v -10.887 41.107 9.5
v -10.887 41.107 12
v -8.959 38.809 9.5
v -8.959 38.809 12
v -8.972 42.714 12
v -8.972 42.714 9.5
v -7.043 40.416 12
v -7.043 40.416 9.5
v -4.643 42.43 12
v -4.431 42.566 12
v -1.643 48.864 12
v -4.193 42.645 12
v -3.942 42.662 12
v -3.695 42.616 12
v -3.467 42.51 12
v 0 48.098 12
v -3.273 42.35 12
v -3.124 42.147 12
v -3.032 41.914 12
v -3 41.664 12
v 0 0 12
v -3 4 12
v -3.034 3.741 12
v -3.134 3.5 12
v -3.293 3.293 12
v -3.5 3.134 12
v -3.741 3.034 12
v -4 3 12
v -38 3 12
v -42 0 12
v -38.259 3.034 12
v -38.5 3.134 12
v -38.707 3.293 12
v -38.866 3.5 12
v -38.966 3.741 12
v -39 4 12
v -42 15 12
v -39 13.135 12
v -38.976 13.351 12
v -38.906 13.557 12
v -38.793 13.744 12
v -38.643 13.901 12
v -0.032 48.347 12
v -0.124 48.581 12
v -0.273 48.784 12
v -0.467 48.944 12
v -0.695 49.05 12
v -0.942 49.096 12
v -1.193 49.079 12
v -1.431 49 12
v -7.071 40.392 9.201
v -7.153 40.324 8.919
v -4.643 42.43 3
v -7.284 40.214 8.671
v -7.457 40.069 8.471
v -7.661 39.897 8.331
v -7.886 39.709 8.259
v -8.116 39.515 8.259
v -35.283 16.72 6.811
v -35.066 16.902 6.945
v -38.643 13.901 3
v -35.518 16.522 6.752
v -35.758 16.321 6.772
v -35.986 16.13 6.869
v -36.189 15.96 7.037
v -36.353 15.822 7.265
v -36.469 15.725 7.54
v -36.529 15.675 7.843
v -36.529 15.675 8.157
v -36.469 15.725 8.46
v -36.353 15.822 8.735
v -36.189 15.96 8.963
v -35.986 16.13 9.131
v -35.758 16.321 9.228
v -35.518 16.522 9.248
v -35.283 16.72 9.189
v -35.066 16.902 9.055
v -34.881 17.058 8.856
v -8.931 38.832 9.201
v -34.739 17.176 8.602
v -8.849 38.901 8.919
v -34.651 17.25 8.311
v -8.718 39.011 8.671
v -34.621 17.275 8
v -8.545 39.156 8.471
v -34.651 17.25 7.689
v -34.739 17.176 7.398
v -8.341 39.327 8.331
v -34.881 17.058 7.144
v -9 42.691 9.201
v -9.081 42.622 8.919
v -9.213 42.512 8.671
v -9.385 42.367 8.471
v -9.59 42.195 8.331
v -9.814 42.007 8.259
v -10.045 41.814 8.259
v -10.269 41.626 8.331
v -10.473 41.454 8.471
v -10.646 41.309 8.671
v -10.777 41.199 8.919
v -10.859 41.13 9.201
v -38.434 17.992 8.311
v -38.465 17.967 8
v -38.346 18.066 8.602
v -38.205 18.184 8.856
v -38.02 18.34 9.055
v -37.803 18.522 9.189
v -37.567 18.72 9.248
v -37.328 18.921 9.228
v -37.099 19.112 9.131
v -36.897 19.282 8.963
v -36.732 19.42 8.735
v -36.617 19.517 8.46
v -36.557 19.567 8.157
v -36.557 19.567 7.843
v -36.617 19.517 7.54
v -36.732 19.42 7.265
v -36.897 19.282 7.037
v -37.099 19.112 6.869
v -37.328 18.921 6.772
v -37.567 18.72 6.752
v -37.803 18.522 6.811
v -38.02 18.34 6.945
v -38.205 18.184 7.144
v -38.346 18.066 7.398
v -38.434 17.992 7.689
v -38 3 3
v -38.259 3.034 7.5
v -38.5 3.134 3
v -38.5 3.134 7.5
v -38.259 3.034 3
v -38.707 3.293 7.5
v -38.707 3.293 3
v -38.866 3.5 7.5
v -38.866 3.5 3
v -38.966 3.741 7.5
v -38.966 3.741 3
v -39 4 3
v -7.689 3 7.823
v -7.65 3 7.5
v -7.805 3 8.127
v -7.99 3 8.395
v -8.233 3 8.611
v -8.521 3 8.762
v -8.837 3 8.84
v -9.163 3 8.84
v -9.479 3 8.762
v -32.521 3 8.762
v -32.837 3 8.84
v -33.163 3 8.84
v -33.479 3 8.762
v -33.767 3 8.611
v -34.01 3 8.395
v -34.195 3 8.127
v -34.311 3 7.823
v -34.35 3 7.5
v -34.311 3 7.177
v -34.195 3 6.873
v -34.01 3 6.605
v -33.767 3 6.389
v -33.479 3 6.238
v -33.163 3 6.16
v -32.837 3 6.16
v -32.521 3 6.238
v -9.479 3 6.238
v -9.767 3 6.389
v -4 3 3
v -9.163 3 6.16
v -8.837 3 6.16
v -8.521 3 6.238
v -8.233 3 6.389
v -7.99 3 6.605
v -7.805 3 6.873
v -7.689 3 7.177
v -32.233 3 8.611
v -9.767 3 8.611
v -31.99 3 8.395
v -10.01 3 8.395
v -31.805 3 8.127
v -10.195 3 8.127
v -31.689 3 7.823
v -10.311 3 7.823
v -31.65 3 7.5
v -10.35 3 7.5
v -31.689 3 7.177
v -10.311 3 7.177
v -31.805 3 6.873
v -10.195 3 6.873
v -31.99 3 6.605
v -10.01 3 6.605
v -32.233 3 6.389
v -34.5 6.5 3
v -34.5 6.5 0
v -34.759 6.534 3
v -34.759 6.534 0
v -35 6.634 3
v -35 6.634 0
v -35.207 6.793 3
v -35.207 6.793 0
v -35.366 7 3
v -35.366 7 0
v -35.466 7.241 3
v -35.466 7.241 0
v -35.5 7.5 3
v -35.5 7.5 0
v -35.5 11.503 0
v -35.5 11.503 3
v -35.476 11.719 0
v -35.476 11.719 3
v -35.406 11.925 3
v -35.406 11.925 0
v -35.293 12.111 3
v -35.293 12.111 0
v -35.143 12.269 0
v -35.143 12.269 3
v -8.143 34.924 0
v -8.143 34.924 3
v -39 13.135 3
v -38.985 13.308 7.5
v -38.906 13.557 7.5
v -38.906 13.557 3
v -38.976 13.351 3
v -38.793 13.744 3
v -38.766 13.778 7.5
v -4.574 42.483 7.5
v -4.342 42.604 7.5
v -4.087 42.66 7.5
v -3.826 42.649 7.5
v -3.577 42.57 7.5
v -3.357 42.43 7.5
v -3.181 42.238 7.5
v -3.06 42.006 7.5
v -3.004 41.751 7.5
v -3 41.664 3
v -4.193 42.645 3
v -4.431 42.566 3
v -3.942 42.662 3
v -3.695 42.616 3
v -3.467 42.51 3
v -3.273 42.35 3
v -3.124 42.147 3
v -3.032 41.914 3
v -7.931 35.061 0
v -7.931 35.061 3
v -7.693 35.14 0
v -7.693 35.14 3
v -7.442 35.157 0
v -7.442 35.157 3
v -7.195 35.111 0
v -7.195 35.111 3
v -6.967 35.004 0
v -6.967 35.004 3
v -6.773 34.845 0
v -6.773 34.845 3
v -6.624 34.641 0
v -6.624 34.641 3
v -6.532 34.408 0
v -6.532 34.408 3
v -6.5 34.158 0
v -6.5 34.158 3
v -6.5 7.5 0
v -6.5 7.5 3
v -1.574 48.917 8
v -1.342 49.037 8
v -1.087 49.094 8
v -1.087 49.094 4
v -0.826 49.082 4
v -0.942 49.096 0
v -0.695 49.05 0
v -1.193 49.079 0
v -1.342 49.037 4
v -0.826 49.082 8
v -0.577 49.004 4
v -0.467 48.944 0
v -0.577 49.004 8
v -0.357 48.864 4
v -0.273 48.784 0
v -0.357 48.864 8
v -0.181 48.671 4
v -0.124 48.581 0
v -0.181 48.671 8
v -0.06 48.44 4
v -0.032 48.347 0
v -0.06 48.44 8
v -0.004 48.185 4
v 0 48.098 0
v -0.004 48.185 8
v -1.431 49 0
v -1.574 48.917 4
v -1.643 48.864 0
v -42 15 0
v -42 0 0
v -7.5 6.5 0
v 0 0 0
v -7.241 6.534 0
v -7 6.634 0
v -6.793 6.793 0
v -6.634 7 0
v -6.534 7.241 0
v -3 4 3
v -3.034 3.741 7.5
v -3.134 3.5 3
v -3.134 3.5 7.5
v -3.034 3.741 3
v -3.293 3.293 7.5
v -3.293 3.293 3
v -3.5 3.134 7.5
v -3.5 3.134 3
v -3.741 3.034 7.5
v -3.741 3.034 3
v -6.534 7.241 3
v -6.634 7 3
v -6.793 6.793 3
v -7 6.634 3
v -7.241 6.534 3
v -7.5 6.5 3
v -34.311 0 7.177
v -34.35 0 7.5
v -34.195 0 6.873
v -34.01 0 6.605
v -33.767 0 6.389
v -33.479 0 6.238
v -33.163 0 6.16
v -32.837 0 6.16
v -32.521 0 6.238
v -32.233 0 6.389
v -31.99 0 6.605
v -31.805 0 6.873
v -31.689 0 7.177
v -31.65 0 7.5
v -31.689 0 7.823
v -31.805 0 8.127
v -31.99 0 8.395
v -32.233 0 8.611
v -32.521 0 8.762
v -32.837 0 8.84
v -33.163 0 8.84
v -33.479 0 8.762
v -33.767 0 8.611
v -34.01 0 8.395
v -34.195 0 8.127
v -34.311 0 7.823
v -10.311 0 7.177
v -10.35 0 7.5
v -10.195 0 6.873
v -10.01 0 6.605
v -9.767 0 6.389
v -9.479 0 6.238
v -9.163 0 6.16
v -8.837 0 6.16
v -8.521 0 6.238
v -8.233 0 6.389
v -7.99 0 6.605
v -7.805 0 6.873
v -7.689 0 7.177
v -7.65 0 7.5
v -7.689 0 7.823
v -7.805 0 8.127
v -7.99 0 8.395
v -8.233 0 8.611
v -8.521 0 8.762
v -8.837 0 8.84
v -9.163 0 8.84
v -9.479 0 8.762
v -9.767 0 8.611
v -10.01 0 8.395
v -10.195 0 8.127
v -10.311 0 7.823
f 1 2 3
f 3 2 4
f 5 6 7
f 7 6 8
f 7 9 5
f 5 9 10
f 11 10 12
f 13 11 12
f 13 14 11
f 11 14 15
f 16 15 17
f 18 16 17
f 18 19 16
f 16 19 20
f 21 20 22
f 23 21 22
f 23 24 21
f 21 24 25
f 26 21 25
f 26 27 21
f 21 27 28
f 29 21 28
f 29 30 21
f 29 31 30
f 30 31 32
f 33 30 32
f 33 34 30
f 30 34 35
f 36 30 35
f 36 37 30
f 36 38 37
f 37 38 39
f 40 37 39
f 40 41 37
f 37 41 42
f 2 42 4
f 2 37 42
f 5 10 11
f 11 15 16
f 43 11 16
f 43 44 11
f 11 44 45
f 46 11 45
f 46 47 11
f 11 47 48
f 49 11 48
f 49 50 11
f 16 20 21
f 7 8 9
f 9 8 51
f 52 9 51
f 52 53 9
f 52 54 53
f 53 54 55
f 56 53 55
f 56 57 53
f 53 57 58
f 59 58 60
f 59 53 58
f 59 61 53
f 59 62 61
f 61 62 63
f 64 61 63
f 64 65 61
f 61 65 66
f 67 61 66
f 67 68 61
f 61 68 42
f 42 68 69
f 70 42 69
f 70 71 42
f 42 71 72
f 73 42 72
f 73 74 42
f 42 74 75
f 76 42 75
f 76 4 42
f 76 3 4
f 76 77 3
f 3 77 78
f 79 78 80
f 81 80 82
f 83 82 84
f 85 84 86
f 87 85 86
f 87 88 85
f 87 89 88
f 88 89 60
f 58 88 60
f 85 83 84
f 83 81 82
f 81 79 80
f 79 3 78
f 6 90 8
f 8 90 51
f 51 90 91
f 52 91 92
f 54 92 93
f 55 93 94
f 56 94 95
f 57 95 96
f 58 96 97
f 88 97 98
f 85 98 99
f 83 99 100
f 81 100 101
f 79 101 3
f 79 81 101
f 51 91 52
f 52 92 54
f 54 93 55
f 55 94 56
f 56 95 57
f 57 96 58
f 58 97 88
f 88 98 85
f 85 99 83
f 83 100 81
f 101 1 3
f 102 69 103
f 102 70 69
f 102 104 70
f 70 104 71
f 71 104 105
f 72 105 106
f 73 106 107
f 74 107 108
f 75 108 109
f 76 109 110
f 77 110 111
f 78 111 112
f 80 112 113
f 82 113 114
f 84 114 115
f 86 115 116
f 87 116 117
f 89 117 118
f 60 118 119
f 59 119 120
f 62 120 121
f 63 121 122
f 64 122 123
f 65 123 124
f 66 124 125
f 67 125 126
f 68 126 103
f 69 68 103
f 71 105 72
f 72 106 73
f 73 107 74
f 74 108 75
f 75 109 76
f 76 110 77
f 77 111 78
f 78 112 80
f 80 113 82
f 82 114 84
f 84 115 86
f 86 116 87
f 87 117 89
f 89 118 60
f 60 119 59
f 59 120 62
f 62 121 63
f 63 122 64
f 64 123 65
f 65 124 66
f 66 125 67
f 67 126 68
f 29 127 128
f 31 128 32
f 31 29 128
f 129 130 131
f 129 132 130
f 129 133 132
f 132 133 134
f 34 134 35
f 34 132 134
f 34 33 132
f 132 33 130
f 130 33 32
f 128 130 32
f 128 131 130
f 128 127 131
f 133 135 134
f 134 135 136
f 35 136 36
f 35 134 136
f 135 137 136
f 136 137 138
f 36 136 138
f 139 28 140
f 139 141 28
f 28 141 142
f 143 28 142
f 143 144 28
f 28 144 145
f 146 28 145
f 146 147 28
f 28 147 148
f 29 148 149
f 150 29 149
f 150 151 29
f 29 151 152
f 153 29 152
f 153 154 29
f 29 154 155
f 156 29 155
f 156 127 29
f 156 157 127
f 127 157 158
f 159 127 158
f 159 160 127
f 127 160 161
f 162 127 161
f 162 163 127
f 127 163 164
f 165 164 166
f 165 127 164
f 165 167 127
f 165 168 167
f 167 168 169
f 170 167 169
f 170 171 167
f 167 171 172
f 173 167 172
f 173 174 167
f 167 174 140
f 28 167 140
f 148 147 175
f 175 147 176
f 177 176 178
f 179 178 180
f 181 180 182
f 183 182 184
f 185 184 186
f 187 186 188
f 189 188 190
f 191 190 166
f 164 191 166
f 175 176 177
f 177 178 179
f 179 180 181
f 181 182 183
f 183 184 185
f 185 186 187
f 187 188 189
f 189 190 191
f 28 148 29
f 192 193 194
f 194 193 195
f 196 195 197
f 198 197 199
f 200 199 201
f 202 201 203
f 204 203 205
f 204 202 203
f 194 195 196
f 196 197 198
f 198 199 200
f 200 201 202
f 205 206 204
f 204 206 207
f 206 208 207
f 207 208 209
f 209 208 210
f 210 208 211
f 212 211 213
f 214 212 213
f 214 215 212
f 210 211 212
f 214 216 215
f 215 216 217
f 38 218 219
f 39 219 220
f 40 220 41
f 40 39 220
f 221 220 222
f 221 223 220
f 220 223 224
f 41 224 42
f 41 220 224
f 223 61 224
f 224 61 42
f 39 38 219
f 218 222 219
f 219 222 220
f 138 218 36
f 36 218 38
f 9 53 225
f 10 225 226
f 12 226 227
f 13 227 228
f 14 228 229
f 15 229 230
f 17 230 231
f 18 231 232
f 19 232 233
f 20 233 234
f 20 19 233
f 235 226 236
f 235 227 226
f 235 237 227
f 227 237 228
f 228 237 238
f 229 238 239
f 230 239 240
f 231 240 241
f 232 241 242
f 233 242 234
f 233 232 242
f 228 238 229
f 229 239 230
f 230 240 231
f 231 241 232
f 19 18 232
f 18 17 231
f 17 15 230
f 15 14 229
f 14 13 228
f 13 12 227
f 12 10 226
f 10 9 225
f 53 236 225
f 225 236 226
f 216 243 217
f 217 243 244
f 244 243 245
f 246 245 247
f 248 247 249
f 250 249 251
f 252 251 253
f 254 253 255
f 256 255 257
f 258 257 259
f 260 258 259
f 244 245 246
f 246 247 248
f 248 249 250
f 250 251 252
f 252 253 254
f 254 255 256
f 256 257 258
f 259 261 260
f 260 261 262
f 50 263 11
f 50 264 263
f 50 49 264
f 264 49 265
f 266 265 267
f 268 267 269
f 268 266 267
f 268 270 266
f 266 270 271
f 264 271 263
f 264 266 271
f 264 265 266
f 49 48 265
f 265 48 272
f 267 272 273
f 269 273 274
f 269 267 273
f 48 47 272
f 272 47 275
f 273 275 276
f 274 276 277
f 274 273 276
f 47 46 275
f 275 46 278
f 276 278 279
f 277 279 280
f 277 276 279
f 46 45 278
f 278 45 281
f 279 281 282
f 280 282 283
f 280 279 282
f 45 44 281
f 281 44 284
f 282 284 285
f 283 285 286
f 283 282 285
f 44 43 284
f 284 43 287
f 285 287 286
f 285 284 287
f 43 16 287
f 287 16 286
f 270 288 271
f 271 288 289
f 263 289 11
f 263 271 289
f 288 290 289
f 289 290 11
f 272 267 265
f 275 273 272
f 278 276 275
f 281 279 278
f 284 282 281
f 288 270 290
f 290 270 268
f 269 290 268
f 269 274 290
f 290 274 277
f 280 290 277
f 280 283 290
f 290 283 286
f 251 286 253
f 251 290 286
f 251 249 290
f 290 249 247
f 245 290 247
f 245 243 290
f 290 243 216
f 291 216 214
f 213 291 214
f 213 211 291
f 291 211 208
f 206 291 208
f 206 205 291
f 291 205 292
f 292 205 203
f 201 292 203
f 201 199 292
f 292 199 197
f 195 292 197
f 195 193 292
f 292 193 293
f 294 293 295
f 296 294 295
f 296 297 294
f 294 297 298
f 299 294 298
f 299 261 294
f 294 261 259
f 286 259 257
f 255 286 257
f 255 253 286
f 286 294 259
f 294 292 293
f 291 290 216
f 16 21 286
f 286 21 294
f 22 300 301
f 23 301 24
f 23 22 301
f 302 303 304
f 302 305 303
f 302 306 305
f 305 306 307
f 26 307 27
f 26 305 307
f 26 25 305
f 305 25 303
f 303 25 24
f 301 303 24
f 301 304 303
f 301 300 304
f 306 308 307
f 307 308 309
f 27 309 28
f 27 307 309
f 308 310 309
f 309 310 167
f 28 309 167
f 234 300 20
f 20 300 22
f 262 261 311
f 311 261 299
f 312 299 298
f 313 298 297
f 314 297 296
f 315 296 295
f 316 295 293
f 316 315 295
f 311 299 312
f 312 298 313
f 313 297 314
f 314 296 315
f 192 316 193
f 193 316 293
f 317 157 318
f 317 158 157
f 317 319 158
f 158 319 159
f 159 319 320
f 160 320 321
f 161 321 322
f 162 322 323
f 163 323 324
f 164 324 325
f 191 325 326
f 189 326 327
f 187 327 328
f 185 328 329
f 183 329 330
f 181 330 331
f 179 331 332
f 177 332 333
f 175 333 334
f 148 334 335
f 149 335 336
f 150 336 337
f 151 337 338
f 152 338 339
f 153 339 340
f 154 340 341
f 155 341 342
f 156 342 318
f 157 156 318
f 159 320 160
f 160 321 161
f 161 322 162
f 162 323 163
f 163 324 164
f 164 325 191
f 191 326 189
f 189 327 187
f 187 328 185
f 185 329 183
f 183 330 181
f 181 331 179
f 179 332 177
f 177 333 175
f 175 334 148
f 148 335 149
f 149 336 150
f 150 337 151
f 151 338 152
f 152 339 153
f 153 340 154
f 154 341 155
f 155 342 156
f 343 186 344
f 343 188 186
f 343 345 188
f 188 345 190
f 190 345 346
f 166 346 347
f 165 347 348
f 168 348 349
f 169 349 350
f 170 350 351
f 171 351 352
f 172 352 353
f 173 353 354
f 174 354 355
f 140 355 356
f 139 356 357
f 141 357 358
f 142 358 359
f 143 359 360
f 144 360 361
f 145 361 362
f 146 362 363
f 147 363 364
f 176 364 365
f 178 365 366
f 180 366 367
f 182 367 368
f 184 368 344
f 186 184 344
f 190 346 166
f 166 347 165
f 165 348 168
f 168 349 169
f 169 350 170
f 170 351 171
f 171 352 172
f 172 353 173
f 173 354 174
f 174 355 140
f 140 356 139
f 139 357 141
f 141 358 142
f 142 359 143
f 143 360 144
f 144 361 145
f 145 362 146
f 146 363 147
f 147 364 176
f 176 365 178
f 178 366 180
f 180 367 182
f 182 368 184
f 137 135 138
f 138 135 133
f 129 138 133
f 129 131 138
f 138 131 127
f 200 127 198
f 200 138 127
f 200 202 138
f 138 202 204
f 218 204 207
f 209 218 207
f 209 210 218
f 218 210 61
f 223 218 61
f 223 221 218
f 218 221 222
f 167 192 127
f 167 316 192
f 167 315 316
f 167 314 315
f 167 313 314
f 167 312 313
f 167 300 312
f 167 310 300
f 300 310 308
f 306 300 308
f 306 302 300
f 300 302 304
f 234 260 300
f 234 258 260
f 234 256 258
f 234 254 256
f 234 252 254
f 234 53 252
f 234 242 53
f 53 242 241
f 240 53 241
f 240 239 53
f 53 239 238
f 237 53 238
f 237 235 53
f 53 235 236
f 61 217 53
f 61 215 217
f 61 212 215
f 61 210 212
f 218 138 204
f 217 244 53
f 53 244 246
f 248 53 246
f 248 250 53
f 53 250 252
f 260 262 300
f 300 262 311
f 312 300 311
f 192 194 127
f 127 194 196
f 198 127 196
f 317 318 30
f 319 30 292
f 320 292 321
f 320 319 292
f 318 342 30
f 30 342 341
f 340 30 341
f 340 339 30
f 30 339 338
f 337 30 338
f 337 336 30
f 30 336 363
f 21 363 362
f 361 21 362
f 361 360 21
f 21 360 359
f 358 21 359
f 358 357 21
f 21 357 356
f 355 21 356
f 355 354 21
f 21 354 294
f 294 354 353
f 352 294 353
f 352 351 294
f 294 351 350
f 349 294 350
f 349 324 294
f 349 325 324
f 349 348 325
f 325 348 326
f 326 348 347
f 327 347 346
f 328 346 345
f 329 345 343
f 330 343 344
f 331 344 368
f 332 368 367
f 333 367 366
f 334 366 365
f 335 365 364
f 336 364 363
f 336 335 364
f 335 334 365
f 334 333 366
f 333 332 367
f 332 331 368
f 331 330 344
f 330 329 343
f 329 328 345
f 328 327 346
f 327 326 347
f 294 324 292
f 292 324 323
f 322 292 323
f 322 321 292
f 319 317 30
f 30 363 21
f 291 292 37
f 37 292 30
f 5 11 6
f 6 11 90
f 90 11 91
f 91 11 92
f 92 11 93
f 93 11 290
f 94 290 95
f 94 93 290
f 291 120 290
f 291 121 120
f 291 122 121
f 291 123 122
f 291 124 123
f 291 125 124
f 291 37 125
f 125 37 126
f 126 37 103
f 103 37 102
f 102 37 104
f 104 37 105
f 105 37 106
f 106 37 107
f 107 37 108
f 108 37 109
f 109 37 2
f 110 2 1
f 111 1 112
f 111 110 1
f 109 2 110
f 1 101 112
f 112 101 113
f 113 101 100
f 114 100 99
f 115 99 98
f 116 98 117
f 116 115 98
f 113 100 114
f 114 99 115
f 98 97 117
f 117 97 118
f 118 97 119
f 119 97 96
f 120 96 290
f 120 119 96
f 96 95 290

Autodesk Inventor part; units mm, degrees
ref_plane "YZ Plane" through (0, 0, 0) normal (1, 0, 0) x (0, 1, 0)
ref_plane "XZ Plane" through (0, 0, 0) normal (0, 1, 0) x (-1, 0, 0)
ref_plane "XY Plane" through (0, 0, 0) normal (0, 0, 1) x (1, 0, 0)
sketch "Skizze1" plane through (0, 0, 0) normal (0, 0, 1) x (1, 0, 0)
  line L0 (0, 0) -> (0, 50.2422)
  line L1 (0, 50.2422) -> (-42, 15)
  line L2 (-42, 15) -> (-42, 0)
  line L3 (-42, 0) -> (0, 0)
  line L4 (-6.5, 6.5) -> (-6.5, 36.3029)
  line L5 (-6.5, 36.3029) -> (-35.5, 11.969)
  line L6 (-35.5, 11.969) -> (-35.5, 6.5)
  line L7 (-35.5, 6.5) -> (-6.5, 6.5)
  dimension "d0" = 130
  dimension "d1" = 15
  dimension "d2" = 42
  dimension "d3" = 6.5
  dimension "d4" = 6.5
  dimension "d6" = 6.5
  dimension "d7" = 6.5
extrude "Extrusion1" add sketch "Skizze1" along normal blind 12
sketch "Skizze2" plane through (0, 0, 12) normal (0, 0, 1) x (1, 0, 0)
  line L0 (-3, 43.8087) -> (-3, 3)
  line L1 (-3, 3) -> (-39, 3)
  line L2 (-39, 3) -> (-39, 13.6011)
  line L3 (-39, 13.6011) -> (-3, 43.8087)
  line L4 (-42, 0) -> (0, 0) projected
  line L5 (-42, 15) -> (-42, 0) projected
  line L6 (0, 50.2422) -> (-42, 15) projected
  line L7 (0, 0) -> (0, 50.2422) projected
  dimension "d10" = 3
  dimension "d11" = 3
  dimension "d12" = 3
  dimension "d13" = 3
extrude "Extrusion2" cut sketch "Skizze2" against normal blind 9 contours L0 L1 L2 L3
sketch "Skizze3" plane through (-39, 3, 12) normal (0, 1, 0) x (1, 0, 0)
  line L0 (39, 12) -> (39, 0) projected
  line L1 (39, 0) -> (36, 0) projected
  line L2 (36, 0) -> (36, 9) projected
  line L3 (36, 9) -> (0, 9) projected
  line L4 (0, 9) -> (0, 0) projected
  line L5 (0, 0) -> (-3, 0) projected
  line L6 (-3, 0) -> (-3, 12) projected
  line L7 (-3, 12) -> (39, 12) projected
  line L8 (36, 0) -> (0, 0) projected
  line L9 (0, 4.5) -> (36, 4.5)
  point P0 (6, 4.5)
  point P1 (30, 4.5)
  dimension "d17" = 6
  dimension "d18" = 6
hole "Bohrung1" at (-33, 3, 7.5) at (-9, 3, 7.5) direction (0, -1, 0) diameter 2.7 depth 8 tip angle 118
fillet "Rundung2" radius 1 9 edges at (-6.5, 6.5, 1.5) (-3, 3, 7.5) (0, 50.2422, 6) (-6.5, 36.3029, 1.5) (-3, 43.8087, 7.5) (-39, 13.6011, 7.5) (-35.5, 11.969, 1.5) (-35.5, 6.5, 1.5) (-39, 3, 7.5)
sketch "Skizze4" plane through (-38.6428, 13.9008, 3) normal (0.6427876, -0.7660444, 0) x (0.7660444, 0.6427876, 0)
  line L0 (50.4446, -3) -> (-4.3825, -3) projected
  line L1 (-4.3825, -3) -> (-4.3825, 9) projected
  line L2 (-4.3825, 9) -> (0, 9) projected
  line L3 (0, 0) -> (0, 9) projected
  line L4 (0, 0) -> (44.3838, 0) projected
  line L5 (44.3838, 0) -> (44.3838, 9) projected
  line L6 (0, 9) -> (44.3838, 9) projected
  line L7 (50.4446, 9) -> (50.4446, -3) projected
  line L8 (44.3838, 9) -> (50.4446, 9) projected
  point P0 (20.6668, -3)
  point P1 (4, 5)
  point P2 (40, 6.5)
  dimension "d27" = 4
  dimension "d28" = 4
  dimension "d29" = 2.5
  dimension "d30" = 40
  dimension "d31" = 4.3838
hole "Bohrung2" at (-35.5786, 16.472, 8) at (-8.001, 39.6123, 9.5) direction (-0.6427876, 0.7660444, 0) diameter 2.5 depth 8 tip angle 118
sketch "Skizze5" plane through (-38.6428, 13.9008, 3) normal (0.6427876, -0.7660444, 0) x (0.7660444, 0.6427876, 0)
  circle A0 centre (40, 6.5) radius 1.25 projected
  line L0 (41.25, 6.5) -> (41.25, 9)
  line L1 (50.8174, 9) -> (-1.8652, 9) projected
  line L2 (38.75, 9) -> (38.75, 6.5)
  point P0 (20.6668, -3)
extrude "Extrusion3" cut sketch "Skizze5" against normal blind 16.75 contours A0 L2 L1 L0
properties part number "oled_halterung_W162_rechts"
